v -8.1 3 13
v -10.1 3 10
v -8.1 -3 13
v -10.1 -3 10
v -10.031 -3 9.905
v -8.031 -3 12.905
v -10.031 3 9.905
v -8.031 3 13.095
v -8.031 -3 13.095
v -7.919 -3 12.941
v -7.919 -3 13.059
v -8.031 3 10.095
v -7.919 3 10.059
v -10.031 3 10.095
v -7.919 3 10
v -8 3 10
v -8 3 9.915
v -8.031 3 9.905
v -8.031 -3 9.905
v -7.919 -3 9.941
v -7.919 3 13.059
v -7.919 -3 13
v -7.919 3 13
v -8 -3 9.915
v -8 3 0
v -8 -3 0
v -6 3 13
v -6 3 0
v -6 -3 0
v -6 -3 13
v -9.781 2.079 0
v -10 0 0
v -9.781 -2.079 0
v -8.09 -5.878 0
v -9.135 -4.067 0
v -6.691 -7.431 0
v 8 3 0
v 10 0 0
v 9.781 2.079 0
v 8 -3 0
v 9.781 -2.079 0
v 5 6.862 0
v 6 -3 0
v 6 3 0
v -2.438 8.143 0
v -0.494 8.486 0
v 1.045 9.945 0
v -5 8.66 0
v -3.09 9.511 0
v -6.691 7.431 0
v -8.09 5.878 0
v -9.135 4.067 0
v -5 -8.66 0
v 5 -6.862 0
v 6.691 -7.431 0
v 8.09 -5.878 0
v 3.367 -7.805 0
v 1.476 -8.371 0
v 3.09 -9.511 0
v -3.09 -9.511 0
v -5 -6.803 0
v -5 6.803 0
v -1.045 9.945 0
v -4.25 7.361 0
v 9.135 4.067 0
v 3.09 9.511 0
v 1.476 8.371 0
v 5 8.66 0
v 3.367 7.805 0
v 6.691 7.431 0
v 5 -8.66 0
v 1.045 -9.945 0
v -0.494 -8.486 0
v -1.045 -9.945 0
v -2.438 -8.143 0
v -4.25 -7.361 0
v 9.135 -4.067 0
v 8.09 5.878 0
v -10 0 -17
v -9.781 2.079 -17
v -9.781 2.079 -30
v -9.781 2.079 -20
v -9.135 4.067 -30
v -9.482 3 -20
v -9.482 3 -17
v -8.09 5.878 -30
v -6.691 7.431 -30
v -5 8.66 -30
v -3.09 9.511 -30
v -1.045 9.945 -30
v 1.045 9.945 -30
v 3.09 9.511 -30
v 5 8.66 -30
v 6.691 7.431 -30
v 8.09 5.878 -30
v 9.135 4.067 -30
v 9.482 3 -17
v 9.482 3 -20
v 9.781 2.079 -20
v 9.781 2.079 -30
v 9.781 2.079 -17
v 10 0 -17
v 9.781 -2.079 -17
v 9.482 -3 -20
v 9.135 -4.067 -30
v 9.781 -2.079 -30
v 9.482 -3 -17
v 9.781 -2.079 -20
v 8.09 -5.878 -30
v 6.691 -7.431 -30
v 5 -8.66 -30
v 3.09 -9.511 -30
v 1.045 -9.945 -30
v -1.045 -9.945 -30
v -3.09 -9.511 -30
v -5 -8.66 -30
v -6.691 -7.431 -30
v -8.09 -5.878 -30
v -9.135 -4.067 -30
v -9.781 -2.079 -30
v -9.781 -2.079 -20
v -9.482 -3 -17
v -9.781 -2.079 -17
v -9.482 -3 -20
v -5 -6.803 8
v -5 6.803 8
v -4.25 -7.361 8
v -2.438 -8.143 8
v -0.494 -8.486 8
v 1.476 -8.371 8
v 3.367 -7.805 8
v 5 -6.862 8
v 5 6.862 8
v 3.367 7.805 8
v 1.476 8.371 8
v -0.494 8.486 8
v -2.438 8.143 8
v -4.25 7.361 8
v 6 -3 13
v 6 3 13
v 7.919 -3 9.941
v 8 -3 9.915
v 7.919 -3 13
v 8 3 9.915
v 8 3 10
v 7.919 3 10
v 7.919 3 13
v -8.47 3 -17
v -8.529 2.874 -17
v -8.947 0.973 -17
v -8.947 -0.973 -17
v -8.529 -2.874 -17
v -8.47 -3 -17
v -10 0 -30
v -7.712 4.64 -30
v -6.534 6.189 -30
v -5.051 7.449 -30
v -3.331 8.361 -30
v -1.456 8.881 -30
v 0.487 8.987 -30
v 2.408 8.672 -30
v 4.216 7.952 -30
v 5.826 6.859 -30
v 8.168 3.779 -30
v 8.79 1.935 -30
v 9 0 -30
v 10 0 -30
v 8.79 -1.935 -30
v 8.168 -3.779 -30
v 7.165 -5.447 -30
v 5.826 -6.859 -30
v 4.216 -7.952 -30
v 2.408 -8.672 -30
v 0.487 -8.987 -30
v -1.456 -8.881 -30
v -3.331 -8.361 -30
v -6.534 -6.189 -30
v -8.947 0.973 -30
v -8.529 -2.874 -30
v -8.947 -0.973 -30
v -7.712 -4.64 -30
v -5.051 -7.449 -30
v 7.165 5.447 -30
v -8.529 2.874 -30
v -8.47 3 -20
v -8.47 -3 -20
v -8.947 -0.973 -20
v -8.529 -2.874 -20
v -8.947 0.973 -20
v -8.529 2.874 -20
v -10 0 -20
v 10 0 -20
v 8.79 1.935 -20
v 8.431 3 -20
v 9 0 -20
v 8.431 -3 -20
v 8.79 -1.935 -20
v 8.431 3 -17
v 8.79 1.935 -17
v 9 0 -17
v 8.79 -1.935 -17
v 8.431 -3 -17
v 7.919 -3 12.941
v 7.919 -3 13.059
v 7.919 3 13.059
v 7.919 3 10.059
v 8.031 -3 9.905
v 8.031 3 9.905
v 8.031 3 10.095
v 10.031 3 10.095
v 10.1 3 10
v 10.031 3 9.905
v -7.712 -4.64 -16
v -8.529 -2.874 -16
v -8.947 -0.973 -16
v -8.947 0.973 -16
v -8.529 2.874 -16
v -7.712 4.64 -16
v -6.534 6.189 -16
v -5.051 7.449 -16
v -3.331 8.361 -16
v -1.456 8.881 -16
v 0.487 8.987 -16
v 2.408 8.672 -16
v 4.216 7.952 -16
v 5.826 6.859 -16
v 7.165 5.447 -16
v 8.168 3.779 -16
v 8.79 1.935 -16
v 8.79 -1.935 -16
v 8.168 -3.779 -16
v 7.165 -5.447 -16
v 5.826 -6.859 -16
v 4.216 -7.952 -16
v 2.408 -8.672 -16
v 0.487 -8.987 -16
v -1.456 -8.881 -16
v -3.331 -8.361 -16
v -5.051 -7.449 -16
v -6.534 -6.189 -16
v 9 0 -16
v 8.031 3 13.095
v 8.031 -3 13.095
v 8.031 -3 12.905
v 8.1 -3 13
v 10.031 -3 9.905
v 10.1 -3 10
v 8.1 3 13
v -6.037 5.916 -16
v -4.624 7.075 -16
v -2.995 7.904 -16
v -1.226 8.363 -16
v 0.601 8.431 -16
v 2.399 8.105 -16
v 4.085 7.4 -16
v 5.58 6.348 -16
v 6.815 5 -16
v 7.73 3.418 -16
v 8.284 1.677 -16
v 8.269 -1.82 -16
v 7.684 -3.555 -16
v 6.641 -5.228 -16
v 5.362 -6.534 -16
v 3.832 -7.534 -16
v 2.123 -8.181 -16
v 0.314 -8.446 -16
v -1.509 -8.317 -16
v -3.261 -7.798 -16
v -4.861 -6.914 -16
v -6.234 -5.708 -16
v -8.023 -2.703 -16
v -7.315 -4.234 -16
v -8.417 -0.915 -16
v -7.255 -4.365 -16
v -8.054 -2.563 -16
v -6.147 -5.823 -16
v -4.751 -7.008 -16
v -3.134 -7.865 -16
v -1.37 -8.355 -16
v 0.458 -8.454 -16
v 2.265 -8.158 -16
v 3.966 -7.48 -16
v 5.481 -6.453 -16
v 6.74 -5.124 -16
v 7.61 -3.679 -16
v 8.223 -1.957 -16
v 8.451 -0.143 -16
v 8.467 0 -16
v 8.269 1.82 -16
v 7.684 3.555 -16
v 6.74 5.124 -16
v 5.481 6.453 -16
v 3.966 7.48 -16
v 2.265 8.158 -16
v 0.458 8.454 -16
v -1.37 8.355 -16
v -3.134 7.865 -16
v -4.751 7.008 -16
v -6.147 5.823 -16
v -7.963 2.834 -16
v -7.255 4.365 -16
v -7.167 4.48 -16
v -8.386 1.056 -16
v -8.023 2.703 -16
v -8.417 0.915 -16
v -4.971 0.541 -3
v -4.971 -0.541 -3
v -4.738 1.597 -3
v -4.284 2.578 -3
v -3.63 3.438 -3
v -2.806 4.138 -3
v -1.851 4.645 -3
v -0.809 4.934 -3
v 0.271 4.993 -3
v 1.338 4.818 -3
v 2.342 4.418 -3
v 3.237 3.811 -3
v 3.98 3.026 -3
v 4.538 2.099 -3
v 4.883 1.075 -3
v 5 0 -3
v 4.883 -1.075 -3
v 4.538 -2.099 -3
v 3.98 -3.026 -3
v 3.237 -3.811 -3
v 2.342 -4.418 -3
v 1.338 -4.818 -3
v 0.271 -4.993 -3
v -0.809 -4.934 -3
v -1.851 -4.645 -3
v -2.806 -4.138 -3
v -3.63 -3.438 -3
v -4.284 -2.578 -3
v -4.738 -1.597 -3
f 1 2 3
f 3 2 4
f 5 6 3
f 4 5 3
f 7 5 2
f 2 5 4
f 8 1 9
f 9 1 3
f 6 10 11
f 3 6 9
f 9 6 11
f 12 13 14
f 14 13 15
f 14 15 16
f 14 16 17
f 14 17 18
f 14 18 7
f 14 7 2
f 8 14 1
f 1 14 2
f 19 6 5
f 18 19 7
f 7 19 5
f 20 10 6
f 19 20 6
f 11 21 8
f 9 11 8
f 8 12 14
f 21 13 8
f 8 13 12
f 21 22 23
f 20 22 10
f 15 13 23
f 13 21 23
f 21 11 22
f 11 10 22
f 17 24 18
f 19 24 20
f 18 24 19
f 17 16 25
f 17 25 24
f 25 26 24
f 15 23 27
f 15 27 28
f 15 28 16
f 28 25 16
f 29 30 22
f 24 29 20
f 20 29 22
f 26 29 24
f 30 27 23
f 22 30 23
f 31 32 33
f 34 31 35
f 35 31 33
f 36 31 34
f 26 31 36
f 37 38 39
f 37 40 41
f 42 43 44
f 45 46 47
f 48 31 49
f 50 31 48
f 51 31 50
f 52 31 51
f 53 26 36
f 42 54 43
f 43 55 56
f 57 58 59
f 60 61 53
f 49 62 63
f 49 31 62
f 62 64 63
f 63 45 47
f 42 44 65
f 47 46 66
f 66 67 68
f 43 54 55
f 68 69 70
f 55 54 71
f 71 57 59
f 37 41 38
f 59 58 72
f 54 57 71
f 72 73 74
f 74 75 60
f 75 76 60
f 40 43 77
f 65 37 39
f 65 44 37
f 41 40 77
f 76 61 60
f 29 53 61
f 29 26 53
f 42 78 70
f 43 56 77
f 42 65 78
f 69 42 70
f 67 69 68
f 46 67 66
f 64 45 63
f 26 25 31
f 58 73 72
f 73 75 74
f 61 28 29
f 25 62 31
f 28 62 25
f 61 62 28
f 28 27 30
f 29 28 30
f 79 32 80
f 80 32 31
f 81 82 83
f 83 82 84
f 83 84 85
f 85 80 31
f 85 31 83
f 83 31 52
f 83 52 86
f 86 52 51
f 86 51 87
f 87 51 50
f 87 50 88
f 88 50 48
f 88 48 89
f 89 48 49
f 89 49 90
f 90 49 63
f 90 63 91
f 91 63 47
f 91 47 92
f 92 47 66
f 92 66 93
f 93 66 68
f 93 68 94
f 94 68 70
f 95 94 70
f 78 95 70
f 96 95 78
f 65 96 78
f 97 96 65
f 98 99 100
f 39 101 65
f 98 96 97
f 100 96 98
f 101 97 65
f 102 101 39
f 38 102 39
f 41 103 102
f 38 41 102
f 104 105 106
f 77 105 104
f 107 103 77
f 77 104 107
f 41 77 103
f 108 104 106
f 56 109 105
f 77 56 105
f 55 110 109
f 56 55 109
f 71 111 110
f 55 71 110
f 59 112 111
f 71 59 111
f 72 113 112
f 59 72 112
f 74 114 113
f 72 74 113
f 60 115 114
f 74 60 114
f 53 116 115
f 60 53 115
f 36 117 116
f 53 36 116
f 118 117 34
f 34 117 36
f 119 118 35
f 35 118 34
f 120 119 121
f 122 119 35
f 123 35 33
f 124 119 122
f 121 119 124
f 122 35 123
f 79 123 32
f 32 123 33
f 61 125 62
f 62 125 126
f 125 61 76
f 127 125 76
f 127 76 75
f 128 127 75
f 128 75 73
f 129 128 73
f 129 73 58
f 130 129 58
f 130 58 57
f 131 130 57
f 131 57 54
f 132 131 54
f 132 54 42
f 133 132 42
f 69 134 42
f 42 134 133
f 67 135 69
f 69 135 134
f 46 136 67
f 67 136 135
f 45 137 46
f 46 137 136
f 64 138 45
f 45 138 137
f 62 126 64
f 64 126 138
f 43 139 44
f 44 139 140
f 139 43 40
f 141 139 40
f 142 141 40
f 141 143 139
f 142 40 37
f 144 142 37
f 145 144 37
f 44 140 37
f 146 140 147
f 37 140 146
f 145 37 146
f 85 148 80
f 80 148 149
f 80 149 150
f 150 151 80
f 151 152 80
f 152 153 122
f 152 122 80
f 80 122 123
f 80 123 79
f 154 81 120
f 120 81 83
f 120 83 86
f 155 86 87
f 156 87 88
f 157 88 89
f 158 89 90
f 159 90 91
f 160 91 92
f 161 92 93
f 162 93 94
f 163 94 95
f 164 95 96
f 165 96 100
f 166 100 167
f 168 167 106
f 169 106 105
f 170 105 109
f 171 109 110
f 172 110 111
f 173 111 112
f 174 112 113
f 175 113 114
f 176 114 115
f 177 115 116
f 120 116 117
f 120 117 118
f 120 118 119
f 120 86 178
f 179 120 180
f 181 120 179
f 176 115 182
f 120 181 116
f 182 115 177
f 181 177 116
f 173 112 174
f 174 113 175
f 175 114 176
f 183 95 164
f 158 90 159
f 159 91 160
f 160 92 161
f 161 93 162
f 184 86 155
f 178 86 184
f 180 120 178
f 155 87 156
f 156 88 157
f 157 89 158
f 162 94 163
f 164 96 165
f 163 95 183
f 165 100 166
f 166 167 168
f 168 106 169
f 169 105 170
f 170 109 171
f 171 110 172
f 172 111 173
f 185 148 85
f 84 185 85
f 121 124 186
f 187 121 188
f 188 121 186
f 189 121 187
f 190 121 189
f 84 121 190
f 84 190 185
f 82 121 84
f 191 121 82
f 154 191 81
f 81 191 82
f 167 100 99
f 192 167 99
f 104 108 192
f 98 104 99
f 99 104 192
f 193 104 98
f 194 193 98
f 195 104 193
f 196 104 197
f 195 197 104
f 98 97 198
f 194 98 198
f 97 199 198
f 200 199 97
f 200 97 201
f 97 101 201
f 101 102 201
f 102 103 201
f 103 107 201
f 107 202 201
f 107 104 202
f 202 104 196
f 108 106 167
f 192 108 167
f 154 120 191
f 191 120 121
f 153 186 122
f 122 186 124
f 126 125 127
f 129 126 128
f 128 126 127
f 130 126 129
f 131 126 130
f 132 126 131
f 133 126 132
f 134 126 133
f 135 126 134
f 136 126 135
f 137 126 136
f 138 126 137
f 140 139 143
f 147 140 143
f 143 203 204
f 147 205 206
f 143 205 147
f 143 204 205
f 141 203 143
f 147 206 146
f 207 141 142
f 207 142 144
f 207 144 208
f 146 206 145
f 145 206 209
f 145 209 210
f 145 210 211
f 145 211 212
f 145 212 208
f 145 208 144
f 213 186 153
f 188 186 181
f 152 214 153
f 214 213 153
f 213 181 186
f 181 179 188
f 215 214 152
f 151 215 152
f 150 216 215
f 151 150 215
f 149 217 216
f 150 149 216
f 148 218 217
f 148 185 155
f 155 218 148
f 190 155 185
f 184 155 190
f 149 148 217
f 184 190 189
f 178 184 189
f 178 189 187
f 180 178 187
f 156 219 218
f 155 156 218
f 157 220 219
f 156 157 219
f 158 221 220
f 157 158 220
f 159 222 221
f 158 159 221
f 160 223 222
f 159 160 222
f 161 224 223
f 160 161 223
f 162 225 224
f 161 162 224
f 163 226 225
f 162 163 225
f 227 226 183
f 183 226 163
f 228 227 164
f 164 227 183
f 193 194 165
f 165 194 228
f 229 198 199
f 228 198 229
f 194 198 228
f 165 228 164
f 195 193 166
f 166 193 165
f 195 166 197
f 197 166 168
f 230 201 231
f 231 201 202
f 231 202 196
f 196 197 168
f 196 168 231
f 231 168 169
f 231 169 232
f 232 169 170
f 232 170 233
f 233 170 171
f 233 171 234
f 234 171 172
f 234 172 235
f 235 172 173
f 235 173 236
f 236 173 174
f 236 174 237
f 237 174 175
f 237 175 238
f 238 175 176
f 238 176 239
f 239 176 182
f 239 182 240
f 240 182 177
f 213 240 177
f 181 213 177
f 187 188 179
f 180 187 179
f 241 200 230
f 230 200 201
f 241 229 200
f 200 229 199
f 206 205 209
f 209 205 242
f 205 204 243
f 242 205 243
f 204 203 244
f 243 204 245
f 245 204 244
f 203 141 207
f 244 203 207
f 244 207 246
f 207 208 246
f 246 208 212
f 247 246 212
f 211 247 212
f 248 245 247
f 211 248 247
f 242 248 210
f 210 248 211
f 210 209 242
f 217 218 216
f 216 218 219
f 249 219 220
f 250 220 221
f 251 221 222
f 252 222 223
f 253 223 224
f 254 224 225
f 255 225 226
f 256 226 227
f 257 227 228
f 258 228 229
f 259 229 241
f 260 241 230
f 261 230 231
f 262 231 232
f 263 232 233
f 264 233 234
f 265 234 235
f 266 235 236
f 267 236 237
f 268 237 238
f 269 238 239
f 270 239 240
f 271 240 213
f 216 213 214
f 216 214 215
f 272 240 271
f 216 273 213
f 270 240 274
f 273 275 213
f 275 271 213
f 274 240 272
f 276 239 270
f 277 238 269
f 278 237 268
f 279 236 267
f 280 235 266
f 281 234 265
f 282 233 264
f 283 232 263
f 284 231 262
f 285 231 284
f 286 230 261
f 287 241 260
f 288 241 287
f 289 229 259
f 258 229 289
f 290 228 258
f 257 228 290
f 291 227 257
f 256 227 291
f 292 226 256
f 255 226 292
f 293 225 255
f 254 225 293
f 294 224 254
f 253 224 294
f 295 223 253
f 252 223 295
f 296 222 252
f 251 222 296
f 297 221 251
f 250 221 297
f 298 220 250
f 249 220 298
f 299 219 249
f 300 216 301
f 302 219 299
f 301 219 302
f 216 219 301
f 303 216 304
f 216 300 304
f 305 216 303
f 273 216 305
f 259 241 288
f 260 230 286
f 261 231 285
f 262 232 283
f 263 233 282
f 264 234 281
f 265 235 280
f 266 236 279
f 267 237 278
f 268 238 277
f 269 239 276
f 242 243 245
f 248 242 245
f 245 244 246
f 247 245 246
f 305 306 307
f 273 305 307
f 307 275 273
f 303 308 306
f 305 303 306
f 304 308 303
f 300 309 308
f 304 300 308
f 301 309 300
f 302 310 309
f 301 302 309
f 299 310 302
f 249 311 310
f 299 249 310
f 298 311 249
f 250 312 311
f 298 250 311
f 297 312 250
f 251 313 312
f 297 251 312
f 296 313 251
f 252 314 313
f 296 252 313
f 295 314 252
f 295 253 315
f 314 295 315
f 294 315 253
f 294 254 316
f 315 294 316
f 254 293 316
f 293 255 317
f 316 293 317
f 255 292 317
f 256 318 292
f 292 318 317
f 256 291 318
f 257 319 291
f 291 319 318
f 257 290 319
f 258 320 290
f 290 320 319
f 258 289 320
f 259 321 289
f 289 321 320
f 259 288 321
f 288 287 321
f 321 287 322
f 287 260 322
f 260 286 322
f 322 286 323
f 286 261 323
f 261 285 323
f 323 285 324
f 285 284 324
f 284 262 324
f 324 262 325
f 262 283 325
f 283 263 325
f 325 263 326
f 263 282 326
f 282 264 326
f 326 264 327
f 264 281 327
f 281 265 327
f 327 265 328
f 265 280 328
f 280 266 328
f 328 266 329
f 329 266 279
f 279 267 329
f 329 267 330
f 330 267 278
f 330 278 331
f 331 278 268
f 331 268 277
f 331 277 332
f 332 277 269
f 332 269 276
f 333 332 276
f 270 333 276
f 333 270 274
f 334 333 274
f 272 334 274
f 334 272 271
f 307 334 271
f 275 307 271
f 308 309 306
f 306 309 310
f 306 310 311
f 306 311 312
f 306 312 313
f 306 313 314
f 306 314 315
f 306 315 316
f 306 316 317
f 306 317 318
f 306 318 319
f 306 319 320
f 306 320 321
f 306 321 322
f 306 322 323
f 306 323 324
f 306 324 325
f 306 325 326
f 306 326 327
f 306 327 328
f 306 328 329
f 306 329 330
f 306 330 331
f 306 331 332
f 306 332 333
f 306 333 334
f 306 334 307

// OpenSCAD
tab_height = 10;
tab_width = 6;
hole_height = 3;
cyl_height = 30;

*difference() {
	cylinder( r=10, h=cyl_height );
	translate([0,0,-1]) cylinder( r=9, h=cyl_height+2 );
	translate([-15,-tab_width/2,tab_height]) cube( [30,tab_width,hole_height] );
}

module tab() {
	translate( [6,-tab_width/2,cyl_height] )
	cube( [ 2, tab_width, tab_height+hole_height ] );

	hull() {
		translate( [10,+tab_width/2,cyl_height+tab_height] )
		rotate( 90, [1,0,0] )
		cylinder( r=0.1, h=tab_width );
	
		translate( [8,+tab_width/2,cyl_height+tab_height] )
		rotate( 90, [1,0,0] )
		cylinder( r=0.1, h=tab_width );
	
		translate( [8,+tab_width/2,cyl_height+tab_height+3] )
		rotate( 90, [1,0,0] )
		cylinder( r=0.1, h=tab_width );
	}
}

//color([1,0,0,1])
translate( [0,0,-cyl_height] )
union() {
	difference() {
		cylinder( r=10, h=cyl_height );
		translate([0,0,12]) cylinder( r1=9, r2=5, h=15 );
		translate([0,0,-1]) cylinder( r=9, h=cyl_height/2 );
		translate([-15,-tab_width/2,tab_height]) cube( [30,tab_width,hole_height] );
	}
	intersection() {
		translate([0,0,cyl_height]) cylinder( r=8.5, h=8 );
		translate([-5,-10,cyl_height]) cube( [10,20,10] );
	}
	tab();
	scale([-1,1,1]) tab();
}
